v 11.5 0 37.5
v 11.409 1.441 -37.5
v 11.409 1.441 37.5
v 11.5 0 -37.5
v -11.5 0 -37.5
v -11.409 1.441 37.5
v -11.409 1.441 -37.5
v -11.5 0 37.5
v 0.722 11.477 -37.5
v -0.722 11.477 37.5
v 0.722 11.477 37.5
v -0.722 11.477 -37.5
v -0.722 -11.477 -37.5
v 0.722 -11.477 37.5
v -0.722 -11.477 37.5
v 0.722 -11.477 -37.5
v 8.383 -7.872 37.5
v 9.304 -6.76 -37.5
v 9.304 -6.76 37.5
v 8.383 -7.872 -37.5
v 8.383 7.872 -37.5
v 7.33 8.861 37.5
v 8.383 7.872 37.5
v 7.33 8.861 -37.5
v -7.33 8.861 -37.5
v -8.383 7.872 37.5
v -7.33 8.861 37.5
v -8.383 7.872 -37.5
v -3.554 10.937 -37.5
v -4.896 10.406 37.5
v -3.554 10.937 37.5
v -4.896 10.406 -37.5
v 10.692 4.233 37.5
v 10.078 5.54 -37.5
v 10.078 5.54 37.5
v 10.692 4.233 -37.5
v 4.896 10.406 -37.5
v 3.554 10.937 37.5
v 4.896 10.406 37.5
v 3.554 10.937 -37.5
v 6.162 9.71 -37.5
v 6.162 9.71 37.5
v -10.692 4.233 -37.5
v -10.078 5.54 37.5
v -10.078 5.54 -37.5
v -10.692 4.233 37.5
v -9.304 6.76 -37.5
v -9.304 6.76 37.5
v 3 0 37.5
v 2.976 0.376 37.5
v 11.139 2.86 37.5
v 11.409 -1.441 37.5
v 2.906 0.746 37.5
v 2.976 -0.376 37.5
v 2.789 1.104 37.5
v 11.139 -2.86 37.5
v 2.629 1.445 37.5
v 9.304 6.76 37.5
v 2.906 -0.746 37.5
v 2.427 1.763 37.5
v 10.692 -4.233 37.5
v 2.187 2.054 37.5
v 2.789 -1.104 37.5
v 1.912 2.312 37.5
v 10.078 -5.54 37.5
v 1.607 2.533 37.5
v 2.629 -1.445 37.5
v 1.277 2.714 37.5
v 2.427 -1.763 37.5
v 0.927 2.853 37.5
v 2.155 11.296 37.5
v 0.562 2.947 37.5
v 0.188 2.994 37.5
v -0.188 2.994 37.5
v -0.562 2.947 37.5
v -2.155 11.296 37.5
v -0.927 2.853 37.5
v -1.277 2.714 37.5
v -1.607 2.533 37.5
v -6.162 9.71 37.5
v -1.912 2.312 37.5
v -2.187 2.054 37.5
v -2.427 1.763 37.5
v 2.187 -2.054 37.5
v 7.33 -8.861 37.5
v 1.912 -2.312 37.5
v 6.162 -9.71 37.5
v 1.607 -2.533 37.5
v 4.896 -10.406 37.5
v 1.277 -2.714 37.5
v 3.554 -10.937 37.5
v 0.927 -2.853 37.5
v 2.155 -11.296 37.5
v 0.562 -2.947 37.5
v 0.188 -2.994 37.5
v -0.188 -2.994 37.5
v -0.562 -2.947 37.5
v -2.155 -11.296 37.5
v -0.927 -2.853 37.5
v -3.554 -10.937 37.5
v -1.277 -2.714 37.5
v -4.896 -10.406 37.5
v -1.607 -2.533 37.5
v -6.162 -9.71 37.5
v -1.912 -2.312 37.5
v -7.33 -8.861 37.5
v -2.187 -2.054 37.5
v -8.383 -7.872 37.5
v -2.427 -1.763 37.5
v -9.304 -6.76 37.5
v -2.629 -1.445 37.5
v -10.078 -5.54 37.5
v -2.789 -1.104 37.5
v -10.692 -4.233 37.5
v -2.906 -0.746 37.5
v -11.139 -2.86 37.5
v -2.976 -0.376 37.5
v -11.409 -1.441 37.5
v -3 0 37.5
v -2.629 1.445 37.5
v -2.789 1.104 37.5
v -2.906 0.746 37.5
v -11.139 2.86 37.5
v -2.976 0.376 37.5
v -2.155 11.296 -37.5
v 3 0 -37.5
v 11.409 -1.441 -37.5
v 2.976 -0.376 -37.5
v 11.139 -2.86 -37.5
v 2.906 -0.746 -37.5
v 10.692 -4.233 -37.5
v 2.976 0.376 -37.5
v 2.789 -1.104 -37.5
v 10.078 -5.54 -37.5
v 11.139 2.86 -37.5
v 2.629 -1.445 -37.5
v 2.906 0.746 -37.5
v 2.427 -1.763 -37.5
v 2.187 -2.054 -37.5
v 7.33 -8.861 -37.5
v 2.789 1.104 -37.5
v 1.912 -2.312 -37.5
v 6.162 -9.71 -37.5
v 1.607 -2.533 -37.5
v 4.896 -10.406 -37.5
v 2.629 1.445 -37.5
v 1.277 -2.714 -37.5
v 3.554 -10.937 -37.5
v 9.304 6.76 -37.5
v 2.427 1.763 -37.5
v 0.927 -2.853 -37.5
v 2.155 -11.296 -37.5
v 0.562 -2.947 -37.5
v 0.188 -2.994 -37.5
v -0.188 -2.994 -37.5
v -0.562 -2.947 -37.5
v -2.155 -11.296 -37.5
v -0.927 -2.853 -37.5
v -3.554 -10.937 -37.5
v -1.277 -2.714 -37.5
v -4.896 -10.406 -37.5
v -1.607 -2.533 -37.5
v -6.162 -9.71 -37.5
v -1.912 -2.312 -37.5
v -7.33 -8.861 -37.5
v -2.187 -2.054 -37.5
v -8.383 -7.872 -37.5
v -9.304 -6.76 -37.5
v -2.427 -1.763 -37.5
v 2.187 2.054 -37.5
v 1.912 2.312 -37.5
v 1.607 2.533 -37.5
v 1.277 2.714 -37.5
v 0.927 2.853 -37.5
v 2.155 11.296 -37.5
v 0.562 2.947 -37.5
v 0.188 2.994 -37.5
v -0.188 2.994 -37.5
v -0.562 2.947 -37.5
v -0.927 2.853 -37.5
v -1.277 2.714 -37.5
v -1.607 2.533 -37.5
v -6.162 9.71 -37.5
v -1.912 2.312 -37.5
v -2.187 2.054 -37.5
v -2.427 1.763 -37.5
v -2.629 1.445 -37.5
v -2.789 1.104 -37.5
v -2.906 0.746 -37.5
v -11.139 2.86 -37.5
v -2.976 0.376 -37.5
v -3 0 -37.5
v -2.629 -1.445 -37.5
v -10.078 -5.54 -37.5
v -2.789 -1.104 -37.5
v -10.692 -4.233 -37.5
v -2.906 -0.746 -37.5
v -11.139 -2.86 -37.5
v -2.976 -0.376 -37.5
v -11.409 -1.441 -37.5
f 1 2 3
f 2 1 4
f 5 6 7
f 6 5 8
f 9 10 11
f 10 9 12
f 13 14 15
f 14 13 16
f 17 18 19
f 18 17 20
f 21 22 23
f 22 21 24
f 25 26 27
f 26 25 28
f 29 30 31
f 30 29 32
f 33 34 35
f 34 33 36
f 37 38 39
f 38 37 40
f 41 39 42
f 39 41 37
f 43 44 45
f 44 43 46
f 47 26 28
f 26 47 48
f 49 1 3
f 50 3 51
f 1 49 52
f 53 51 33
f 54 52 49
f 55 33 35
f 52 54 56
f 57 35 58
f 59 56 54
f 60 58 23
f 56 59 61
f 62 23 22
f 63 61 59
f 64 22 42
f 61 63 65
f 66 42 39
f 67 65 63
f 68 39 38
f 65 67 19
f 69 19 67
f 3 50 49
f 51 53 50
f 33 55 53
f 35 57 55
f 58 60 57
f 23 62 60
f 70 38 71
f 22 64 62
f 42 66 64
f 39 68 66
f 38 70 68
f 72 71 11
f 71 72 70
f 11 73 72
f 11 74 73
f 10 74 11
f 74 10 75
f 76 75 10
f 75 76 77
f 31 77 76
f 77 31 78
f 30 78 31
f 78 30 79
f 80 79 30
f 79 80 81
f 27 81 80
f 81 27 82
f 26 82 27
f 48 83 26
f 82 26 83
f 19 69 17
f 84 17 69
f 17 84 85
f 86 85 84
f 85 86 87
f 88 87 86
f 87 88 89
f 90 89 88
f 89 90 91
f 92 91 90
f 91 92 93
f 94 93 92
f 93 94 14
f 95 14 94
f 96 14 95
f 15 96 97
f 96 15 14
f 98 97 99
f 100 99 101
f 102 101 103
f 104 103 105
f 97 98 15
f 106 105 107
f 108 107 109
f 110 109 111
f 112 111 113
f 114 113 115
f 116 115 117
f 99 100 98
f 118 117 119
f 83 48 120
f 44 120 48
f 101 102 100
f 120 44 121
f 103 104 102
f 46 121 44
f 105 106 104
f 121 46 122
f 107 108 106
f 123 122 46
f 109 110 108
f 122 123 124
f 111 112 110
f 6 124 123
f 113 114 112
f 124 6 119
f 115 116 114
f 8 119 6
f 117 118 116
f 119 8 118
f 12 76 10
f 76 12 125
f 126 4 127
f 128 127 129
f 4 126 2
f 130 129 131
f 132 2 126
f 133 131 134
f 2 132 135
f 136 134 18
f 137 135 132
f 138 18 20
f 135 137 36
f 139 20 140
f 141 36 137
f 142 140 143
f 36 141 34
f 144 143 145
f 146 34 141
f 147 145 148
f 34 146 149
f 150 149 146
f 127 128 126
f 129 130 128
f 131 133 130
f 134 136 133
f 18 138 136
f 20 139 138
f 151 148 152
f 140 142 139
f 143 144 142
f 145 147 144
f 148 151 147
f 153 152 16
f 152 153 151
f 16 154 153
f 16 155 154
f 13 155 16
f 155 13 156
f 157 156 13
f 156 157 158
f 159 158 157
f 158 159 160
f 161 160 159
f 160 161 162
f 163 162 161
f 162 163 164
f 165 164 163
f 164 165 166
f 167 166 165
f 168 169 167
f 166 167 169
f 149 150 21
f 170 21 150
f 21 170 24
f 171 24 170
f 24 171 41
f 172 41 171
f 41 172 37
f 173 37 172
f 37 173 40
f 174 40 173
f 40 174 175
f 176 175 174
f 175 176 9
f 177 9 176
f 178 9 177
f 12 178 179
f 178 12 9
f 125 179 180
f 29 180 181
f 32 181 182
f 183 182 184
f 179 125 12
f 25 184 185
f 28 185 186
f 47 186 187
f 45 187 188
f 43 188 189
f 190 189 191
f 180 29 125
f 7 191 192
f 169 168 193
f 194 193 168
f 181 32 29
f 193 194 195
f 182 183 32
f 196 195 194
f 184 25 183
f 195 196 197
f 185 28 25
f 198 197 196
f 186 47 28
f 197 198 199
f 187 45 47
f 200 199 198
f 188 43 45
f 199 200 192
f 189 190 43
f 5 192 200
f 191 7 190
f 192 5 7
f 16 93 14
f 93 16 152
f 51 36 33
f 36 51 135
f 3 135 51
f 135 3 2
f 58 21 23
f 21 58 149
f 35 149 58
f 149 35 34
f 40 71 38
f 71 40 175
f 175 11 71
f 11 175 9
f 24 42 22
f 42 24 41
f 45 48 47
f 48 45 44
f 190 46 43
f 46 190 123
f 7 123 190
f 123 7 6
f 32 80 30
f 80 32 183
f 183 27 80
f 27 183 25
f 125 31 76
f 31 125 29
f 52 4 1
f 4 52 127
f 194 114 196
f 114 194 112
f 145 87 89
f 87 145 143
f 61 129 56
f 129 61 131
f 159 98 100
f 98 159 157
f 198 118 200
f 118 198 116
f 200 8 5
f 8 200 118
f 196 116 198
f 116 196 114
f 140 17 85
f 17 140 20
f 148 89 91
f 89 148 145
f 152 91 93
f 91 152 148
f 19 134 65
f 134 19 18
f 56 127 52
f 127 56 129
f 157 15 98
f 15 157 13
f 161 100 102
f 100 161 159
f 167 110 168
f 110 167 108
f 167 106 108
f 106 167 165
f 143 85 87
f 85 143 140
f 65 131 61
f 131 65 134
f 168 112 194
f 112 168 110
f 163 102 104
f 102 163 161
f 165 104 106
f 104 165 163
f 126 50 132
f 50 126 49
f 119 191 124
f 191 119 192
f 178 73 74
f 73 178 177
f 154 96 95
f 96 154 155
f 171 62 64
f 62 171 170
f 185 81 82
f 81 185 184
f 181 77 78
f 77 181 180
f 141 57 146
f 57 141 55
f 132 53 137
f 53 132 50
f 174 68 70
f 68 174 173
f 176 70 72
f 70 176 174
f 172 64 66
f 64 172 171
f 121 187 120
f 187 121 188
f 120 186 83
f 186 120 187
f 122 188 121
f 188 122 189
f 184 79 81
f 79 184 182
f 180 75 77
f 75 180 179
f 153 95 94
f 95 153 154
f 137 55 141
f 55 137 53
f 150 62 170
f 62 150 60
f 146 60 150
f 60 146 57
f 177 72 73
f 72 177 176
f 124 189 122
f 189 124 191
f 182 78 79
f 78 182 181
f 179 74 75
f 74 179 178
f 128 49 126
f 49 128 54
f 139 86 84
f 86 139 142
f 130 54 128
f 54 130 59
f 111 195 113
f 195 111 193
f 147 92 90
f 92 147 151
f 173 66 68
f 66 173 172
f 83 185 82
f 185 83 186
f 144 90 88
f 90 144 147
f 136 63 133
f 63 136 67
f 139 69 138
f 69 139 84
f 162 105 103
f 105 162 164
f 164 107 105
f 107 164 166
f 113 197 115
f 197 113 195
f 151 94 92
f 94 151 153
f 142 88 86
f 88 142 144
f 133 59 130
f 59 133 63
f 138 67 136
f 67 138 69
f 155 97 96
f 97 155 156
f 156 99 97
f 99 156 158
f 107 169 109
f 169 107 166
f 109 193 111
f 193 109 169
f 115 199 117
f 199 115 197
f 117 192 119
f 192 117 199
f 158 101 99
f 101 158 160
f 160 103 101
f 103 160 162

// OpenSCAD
$fn = 50;


difference() {
	union() {
		translate(v = [0, 0, -37.5000000000]) {
			cylinder(h = 75, r = 11.5000000000);
		}
	}
	union() {
		translate(v = [0, 0, -100.0000000000]) {
			cylinder(h = 200, r = 3);
		}
	}
}
